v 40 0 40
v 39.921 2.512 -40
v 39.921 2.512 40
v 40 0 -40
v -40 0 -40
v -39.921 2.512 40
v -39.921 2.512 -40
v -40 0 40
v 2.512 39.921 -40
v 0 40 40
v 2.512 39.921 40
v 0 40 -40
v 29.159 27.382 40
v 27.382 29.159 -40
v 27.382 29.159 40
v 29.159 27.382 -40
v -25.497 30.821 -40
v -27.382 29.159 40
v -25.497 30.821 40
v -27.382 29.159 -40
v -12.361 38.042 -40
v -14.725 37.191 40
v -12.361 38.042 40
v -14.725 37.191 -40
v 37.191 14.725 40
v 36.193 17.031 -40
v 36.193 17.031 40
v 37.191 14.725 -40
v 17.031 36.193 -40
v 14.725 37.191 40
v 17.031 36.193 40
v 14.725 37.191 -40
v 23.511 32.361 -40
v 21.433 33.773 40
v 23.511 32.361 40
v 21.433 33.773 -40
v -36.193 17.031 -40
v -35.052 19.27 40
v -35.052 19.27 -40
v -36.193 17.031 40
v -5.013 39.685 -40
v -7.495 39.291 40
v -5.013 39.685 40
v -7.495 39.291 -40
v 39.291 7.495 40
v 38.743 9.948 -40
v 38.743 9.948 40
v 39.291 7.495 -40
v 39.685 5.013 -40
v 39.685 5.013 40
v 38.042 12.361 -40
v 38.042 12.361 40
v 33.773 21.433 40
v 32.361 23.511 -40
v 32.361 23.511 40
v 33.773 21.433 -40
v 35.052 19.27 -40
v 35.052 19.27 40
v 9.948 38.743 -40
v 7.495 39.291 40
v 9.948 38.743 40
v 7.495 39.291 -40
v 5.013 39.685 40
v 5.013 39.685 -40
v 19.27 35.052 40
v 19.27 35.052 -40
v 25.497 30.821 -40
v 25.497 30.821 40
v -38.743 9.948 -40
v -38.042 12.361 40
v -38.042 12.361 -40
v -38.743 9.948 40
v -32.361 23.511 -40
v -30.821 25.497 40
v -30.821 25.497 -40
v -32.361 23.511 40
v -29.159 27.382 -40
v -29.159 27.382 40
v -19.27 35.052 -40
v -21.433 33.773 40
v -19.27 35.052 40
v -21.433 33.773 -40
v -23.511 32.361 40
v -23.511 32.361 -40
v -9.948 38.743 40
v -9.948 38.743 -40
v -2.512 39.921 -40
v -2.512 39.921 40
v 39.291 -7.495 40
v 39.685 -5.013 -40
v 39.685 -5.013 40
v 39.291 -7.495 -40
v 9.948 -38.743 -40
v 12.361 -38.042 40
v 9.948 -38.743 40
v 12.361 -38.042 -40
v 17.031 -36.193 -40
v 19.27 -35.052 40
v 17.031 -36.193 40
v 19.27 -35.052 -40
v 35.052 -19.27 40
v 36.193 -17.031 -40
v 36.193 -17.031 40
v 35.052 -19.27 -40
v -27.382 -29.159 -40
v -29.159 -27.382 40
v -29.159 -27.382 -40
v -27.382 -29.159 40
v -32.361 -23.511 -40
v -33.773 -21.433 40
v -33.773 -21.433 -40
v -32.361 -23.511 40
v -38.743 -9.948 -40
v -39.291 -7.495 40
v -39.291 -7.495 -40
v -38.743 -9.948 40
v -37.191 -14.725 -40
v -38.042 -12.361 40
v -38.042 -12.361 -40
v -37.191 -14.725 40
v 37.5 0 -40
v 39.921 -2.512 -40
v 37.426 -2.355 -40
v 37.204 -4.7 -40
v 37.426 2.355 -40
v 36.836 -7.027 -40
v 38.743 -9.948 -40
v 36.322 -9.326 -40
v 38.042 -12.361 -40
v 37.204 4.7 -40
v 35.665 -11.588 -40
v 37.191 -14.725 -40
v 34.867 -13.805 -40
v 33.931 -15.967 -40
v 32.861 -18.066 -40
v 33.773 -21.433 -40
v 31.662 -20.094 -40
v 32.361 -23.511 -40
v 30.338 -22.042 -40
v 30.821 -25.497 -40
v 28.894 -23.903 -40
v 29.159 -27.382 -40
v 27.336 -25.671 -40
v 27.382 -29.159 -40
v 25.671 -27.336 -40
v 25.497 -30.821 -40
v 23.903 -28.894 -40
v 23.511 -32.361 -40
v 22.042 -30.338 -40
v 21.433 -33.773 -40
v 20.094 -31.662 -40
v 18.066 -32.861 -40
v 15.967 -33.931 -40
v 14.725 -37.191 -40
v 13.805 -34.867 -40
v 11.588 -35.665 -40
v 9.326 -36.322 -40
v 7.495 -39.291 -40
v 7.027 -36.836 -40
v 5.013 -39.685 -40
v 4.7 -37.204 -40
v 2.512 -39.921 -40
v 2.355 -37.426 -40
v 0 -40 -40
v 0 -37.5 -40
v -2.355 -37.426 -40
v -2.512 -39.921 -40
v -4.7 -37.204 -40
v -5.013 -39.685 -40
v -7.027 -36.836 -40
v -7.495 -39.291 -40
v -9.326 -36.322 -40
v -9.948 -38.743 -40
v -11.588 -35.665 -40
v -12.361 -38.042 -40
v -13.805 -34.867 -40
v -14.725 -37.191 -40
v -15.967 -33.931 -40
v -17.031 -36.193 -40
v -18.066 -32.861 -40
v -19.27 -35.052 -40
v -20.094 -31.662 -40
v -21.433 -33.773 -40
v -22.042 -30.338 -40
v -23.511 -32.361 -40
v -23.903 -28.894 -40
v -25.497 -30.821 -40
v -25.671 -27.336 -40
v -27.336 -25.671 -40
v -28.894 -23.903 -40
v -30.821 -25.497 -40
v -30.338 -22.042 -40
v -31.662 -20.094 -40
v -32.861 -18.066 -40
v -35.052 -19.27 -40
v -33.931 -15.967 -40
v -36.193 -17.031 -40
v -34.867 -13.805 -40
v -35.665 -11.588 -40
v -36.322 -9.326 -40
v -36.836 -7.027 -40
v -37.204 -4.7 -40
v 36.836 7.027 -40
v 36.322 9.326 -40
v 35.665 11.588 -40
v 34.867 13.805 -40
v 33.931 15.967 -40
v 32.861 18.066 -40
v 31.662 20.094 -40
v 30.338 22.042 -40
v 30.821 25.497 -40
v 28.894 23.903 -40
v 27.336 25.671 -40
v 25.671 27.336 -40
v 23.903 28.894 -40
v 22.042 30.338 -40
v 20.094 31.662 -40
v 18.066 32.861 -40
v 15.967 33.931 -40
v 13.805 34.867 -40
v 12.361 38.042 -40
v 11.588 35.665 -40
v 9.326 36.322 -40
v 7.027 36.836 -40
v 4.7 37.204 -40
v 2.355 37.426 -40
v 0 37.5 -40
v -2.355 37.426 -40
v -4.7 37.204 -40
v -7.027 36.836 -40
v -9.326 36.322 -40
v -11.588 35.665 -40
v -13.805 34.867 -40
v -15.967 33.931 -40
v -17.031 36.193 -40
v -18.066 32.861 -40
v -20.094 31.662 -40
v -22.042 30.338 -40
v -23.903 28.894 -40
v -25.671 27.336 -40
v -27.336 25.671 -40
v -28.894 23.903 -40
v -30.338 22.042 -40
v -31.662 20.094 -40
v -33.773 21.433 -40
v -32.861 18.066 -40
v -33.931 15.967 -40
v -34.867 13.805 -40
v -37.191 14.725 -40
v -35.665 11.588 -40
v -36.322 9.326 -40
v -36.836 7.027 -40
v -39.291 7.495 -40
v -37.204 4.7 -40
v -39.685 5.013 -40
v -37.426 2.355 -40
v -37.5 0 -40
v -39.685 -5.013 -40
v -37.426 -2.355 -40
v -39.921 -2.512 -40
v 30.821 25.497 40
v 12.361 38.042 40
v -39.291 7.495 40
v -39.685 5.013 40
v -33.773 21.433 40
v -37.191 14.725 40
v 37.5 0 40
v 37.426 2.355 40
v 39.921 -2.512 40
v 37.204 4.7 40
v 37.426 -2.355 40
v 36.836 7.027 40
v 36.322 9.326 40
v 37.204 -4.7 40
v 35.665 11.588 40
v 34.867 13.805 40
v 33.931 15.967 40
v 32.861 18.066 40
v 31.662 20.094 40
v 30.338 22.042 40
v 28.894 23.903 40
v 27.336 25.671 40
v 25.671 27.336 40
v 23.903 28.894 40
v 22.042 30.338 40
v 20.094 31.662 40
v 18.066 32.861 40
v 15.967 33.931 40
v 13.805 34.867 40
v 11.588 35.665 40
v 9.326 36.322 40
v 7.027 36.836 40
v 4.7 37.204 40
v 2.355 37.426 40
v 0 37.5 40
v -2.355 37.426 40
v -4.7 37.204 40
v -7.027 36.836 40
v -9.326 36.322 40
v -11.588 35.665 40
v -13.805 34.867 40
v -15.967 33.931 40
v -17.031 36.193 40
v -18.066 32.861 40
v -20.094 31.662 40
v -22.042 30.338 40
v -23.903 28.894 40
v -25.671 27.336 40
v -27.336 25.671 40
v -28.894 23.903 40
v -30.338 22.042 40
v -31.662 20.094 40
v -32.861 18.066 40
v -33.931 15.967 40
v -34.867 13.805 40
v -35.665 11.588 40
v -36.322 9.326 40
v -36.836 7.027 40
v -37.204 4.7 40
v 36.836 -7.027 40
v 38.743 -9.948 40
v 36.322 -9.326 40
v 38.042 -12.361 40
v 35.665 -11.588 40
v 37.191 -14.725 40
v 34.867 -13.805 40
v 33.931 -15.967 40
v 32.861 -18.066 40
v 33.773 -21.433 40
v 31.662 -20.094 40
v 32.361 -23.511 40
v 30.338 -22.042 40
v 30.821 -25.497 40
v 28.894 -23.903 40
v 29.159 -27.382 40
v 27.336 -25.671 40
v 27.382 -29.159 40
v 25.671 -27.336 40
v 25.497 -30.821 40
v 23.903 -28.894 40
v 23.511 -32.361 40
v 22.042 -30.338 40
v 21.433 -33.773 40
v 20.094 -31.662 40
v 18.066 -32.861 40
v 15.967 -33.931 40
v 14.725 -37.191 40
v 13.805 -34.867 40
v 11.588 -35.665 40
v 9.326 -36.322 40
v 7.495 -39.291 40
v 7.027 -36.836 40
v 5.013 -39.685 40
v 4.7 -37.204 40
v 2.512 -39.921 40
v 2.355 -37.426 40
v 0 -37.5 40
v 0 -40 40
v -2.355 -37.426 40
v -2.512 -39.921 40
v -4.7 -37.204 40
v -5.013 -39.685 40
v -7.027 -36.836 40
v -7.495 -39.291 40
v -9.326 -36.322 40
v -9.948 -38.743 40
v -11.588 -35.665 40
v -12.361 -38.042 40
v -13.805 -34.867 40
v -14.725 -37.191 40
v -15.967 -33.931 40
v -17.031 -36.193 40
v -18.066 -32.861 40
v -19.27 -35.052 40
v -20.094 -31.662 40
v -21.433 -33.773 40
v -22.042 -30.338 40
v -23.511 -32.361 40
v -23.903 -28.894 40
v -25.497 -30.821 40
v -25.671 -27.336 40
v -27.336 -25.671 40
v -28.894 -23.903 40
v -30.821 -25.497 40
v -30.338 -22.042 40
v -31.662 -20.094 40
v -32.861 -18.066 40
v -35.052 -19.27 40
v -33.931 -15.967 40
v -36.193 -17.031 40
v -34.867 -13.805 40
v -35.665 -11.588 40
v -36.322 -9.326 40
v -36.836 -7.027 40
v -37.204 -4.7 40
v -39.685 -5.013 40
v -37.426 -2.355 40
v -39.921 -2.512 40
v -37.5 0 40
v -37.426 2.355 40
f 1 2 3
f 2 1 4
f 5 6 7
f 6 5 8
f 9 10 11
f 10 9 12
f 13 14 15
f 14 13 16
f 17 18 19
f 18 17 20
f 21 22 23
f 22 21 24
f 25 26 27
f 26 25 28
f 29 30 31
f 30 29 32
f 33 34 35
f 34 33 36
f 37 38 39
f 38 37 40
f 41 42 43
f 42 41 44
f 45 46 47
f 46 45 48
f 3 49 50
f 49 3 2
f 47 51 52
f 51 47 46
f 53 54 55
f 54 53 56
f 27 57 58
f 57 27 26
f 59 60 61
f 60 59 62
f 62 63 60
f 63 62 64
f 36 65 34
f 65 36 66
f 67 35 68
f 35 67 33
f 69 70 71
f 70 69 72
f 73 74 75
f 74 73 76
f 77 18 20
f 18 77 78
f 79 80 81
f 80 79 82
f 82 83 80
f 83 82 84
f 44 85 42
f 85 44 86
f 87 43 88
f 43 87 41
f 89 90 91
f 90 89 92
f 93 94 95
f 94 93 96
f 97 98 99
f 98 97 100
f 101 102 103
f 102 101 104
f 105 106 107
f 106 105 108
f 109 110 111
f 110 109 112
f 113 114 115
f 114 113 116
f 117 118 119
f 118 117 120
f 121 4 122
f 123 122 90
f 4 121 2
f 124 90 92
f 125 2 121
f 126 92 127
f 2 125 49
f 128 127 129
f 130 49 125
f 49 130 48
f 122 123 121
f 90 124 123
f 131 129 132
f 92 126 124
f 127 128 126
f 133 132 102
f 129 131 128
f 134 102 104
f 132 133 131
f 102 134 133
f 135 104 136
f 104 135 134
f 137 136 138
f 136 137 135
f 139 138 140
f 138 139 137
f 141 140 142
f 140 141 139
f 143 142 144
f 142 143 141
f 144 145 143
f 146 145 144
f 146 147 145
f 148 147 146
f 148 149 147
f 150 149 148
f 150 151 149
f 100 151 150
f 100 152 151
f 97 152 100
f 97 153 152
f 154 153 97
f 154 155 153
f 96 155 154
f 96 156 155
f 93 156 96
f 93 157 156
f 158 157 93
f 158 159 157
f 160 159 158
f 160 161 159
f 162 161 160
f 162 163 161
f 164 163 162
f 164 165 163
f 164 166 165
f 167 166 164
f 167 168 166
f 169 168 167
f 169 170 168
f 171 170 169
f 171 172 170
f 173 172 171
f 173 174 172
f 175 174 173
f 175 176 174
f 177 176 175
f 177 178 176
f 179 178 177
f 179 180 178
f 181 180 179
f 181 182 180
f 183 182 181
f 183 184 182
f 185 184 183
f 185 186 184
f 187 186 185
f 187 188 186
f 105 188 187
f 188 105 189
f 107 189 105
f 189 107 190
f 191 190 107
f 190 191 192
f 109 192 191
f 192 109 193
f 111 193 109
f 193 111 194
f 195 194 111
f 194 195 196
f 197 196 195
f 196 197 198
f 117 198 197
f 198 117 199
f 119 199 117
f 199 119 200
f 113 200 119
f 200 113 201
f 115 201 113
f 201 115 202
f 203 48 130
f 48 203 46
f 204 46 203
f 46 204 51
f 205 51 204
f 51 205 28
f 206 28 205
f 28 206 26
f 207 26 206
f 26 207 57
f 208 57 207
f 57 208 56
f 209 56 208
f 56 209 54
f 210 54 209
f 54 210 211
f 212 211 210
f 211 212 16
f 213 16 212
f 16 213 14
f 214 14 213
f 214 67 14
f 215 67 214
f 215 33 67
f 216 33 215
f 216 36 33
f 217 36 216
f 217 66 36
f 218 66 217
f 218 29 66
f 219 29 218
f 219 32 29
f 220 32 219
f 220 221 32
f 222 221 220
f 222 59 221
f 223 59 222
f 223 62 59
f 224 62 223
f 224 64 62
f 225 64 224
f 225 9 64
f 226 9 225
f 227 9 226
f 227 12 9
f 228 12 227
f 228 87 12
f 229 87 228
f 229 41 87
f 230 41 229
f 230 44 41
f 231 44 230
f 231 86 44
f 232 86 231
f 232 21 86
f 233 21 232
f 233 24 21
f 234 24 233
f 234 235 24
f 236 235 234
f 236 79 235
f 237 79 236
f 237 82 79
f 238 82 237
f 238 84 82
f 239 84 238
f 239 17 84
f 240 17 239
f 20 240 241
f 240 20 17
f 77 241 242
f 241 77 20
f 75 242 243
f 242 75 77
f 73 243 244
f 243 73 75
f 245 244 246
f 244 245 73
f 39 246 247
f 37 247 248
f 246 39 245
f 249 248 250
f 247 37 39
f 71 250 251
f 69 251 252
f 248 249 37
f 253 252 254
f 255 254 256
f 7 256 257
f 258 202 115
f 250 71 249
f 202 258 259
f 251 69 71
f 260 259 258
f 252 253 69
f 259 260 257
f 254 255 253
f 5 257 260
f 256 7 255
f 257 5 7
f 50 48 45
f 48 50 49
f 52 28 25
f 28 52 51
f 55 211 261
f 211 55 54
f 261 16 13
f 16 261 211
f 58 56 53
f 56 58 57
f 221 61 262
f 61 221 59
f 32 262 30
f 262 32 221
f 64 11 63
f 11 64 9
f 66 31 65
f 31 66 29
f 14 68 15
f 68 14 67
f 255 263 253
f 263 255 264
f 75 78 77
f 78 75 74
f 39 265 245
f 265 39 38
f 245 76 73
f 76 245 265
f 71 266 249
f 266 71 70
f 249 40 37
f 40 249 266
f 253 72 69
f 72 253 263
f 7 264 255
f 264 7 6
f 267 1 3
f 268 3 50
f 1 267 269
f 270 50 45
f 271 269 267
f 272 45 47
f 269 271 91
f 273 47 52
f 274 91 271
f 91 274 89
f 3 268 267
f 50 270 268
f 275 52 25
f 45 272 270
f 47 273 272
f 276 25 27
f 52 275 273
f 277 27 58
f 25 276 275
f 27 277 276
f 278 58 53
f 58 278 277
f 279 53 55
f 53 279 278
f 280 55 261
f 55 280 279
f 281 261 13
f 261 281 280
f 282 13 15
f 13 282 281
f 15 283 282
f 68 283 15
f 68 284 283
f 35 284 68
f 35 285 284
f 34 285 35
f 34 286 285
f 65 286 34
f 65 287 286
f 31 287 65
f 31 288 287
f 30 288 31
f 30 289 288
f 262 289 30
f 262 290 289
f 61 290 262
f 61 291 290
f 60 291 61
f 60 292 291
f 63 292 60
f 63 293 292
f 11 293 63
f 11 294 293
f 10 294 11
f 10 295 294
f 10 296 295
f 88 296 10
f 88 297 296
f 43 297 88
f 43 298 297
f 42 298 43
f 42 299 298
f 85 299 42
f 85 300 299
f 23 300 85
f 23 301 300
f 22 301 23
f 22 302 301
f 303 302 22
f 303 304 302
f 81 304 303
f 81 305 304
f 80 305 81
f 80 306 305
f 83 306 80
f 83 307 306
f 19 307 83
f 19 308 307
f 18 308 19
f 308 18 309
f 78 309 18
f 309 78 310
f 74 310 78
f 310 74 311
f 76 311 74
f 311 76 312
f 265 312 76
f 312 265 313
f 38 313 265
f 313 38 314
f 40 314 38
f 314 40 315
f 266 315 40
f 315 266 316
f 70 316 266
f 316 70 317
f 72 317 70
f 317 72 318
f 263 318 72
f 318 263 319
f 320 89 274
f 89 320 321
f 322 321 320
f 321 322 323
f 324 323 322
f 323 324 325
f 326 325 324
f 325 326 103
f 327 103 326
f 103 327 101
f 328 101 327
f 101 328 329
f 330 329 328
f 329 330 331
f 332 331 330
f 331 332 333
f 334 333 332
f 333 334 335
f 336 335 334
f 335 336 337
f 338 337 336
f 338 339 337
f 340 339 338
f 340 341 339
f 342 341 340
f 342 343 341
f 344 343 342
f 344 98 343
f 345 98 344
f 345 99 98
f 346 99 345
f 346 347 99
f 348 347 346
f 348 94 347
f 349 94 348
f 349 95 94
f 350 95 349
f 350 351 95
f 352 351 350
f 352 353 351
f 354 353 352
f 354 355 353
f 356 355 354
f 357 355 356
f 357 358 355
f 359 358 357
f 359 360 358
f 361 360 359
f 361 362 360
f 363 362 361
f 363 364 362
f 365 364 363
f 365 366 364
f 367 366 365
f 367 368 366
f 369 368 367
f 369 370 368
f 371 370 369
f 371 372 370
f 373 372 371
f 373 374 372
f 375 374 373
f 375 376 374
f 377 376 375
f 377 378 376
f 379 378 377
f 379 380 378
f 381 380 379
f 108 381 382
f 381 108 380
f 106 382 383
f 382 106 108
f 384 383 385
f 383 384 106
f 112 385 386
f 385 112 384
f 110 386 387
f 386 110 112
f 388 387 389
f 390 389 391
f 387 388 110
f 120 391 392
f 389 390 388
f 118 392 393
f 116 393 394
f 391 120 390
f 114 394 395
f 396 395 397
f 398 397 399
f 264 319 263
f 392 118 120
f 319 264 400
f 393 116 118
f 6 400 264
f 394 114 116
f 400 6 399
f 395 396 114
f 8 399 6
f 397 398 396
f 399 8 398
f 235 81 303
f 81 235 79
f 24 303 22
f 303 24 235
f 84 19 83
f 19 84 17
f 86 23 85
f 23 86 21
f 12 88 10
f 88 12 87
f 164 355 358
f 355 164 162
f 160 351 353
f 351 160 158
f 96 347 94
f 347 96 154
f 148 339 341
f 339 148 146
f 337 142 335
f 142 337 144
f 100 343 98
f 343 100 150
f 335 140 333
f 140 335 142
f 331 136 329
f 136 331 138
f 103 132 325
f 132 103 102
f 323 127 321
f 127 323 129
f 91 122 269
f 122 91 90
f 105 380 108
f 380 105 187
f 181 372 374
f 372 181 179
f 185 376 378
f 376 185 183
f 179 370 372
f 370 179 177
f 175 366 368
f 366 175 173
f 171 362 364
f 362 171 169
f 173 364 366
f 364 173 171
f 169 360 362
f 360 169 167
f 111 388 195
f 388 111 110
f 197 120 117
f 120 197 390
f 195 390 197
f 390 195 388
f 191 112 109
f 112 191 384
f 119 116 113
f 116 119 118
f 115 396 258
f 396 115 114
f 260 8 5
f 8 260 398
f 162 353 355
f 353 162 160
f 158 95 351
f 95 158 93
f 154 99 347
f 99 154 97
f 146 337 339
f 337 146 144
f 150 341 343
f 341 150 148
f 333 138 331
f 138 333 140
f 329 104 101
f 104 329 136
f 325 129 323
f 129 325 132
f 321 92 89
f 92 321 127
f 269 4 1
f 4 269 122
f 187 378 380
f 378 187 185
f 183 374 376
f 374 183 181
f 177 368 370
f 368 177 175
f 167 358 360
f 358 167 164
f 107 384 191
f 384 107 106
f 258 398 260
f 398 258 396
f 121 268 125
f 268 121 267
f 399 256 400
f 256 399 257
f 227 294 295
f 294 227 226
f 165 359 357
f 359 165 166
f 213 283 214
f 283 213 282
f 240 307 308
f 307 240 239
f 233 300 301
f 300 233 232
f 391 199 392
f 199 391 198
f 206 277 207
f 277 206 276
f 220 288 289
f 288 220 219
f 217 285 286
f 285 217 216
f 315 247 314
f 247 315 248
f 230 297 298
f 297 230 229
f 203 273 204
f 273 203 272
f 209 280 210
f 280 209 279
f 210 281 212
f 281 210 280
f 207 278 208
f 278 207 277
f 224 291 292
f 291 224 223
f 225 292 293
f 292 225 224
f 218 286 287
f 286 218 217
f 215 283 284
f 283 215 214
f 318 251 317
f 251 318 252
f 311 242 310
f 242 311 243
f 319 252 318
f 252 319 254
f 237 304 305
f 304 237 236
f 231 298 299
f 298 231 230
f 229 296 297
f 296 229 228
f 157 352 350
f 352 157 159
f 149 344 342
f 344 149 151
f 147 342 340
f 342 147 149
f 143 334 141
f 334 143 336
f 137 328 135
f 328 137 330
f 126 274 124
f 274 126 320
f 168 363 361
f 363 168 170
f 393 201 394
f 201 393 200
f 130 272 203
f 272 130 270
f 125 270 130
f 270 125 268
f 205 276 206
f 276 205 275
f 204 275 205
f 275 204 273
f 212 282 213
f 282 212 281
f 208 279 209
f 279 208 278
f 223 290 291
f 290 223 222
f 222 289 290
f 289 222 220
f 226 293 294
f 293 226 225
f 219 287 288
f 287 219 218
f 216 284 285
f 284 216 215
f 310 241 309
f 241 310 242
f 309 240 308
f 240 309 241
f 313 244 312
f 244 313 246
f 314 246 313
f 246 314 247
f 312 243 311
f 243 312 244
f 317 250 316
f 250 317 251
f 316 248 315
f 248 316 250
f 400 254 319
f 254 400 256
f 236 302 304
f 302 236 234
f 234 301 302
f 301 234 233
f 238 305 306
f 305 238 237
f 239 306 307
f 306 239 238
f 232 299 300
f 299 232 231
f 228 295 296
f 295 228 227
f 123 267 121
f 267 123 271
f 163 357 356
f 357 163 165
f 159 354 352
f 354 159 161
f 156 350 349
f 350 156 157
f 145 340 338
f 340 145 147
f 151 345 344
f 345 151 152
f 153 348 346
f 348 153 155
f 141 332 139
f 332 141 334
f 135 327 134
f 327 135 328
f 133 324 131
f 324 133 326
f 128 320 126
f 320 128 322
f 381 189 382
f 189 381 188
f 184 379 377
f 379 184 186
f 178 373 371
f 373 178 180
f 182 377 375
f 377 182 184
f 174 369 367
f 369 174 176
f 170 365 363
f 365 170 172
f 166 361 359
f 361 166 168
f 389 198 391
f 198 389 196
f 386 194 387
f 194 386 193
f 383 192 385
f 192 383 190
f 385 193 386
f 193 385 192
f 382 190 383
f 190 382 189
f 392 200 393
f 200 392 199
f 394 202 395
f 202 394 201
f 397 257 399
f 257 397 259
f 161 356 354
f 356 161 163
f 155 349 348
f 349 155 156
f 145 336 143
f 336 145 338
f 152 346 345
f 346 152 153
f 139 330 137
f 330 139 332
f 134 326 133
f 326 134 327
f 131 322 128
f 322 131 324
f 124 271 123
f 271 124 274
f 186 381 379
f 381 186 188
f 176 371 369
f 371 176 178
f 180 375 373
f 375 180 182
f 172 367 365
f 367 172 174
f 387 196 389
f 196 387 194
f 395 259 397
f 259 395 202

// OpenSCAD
radius_cylinder=40; 

$fn=100; // nbr faces

difference() {
	cylinder (h = 80, r=radius_cylinder, center = true);
	cylinder (h = 82, r=radius_cylinder-2.5, center = true);
}
